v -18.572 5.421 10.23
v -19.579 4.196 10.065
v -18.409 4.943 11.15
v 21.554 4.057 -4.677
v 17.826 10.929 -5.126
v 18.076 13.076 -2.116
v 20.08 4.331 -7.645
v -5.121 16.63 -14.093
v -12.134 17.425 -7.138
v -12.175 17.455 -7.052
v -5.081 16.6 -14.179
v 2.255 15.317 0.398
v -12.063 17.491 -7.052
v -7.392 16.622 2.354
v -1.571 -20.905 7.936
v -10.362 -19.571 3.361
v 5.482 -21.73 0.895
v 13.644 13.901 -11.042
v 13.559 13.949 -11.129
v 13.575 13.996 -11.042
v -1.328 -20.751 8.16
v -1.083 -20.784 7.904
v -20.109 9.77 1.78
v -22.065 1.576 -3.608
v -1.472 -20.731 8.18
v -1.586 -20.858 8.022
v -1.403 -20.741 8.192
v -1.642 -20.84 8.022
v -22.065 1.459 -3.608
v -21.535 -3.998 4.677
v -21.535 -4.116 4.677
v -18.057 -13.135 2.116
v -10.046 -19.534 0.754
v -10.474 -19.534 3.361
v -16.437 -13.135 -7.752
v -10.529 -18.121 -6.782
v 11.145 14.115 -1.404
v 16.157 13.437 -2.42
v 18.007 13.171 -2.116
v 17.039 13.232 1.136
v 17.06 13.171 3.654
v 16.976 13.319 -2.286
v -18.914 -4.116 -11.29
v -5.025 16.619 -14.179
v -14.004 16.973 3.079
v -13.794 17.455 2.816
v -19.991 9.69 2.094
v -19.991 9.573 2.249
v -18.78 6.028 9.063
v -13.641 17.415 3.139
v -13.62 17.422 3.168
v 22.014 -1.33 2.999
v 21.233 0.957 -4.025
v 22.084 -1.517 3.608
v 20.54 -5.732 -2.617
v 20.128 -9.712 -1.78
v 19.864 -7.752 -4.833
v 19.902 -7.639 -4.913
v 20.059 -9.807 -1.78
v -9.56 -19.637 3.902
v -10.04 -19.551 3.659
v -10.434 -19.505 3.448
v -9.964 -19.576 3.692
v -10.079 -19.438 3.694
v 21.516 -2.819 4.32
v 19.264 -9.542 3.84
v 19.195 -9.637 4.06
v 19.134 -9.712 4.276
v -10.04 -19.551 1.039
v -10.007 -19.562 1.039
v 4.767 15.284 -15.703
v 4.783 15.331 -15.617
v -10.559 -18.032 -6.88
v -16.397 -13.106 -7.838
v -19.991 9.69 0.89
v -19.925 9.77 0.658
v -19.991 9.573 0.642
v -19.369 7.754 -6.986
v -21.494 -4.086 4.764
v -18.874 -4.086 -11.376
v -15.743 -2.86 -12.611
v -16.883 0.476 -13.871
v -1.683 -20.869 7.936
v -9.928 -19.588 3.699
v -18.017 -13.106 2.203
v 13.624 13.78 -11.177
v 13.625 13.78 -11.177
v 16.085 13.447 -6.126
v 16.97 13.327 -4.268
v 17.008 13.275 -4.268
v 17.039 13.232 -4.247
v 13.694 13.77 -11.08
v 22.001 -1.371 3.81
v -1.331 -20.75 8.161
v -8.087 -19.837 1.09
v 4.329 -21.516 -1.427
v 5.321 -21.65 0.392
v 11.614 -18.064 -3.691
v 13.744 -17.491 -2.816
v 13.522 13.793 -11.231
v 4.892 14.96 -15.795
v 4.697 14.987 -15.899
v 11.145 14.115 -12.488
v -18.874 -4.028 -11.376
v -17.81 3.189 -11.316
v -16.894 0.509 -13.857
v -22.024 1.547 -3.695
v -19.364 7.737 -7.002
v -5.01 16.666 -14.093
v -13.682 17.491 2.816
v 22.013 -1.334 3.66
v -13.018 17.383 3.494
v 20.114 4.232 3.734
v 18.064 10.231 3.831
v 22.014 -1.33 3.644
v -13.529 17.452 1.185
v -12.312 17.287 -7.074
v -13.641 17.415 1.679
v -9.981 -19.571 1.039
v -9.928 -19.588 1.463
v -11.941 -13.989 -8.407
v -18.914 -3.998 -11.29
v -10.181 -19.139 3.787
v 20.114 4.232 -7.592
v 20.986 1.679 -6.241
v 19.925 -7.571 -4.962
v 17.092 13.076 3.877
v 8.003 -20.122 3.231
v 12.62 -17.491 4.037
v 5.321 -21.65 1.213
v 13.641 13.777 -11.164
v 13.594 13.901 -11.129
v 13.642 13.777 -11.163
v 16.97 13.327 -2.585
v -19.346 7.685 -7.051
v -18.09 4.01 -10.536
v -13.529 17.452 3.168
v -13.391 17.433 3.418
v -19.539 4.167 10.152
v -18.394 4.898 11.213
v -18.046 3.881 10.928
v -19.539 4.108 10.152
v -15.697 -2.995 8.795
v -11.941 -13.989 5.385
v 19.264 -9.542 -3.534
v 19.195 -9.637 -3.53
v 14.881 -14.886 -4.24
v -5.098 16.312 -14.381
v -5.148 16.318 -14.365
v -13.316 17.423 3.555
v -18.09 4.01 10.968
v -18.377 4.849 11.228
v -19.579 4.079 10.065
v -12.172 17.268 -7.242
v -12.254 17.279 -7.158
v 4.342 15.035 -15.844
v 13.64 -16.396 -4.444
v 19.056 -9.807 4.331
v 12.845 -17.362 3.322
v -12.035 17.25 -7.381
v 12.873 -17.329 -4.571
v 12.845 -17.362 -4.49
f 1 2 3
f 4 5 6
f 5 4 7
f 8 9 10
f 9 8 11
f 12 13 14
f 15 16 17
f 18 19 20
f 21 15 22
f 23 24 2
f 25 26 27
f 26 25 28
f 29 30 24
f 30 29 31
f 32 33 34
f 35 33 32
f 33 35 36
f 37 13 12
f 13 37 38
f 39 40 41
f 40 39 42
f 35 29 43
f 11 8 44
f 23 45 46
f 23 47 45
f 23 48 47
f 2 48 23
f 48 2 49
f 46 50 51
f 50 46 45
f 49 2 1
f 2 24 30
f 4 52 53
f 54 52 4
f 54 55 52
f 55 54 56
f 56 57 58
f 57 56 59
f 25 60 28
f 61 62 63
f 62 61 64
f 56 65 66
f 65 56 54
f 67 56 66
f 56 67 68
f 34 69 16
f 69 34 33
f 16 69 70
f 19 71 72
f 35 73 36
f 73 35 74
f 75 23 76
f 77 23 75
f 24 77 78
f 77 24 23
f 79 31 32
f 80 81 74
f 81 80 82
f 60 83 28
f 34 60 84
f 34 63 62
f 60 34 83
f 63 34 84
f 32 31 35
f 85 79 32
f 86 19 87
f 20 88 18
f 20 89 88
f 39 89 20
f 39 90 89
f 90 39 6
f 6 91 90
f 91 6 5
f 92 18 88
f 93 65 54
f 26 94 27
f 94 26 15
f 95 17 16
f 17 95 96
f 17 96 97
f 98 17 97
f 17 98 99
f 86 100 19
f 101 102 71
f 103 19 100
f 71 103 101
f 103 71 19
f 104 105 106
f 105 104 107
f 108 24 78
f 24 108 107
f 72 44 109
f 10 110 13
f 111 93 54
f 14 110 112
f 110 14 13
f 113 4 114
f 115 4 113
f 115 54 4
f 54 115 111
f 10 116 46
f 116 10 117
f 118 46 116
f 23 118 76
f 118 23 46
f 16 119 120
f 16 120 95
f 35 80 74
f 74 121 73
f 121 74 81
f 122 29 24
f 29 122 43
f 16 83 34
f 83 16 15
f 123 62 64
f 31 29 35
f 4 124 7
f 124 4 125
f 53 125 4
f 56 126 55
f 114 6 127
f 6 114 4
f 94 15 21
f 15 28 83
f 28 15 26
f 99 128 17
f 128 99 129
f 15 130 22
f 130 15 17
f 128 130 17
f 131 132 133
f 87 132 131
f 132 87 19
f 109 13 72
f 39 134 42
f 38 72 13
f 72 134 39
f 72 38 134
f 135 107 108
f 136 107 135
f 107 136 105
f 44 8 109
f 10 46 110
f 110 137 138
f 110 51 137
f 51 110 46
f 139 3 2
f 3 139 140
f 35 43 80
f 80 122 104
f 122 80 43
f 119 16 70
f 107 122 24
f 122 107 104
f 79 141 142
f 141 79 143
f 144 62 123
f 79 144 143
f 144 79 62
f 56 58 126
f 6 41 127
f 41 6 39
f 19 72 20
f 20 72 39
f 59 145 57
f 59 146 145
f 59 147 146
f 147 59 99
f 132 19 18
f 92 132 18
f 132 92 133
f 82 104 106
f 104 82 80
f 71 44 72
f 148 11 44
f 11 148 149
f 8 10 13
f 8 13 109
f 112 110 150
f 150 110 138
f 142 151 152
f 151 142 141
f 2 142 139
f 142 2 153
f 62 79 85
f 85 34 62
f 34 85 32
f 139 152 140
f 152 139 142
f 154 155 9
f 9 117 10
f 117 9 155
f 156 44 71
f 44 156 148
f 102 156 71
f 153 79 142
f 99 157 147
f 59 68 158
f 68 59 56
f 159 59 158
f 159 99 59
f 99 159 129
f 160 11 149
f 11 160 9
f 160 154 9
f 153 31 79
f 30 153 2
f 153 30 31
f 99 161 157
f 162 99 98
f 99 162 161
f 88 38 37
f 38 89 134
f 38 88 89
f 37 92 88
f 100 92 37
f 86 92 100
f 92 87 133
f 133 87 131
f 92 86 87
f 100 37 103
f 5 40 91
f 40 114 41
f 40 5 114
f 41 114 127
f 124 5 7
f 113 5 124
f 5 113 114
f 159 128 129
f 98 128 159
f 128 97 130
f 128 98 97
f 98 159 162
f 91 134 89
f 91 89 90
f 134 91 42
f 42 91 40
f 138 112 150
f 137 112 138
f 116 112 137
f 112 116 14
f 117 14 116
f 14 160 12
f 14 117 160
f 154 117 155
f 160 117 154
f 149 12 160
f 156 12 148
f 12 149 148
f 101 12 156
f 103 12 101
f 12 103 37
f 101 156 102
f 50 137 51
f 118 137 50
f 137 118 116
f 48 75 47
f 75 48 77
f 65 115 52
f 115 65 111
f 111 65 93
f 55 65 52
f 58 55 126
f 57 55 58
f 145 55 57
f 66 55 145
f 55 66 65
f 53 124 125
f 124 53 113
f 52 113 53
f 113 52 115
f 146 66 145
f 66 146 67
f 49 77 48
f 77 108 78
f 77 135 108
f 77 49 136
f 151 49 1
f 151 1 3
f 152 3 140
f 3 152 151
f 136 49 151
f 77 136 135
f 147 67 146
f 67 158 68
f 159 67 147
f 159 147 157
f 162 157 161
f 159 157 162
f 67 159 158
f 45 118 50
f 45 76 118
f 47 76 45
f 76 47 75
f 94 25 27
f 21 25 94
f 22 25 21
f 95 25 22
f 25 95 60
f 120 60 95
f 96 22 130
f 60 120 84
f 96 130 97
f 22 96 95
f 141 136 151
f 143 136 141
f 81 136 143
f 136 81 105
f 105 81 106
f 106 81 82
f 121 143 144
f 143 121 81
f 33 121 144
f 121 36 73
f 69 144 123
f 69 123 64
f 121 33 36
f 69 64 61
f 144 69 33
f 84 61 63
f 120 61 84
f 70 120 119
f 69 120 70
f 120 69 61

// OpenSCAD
// Auto-generated OpenSCAD file

    inner_points = 10*[[0.03149424619031844, -0.6992864879444639, 2.118033988749915], [0.03149424617314351, -0.6992864879462605, -2.118033988749875], [-0.741026938557207, -0.06429749660974819, 2.1180339887527775], [-0.741026938574382, -0.06429749661154475, -2.1180339887470123], [0.6664832375250342, 0.07323469680306156, 2.1180339887470123], [0.6664832375078593, 0.073234696801265, -2.1180339887527775], [-0.10603794722249132, 0.7082236881377774, 2.118033988749875], [-0.10603794723966625, 0.7082236881359808, -2.118033988749915], [-0.9959395242778242, -1.9492520218959832, 0.5000000000047155], [-0.9959395242818789, -1.9492520218964078, -0.49999999999528455], [1.6939170079800567, 1.3232002307532087, 0.49999999999242173], [1.693917007976002, 1.3232002307527841, -0.5000000000075783], [1.2814597801305372, -1.726720258407157, -0.5000000000046125], [-1.9909924725146007, 0.9631362738511482, 0.5000000000075147], [-1.9909924725186547, 0.9631362738507241, -0.49999999999248534], [1.916448771465253, -0.9541990736596313, -0.5000000000075147], [-1.356003481179885, 1.7356574585986737, 0.5000000000046125], [-1.356003481183939, 1.7356574585982496, -0.49999999999538747], [0.9739715088171708, -0.8267427808031579, -1.809016994378695], [-1.0485152098665185, 0.8356799809946748, 1.809016994378695], [-1.0485152098811878, 0.8356799809931404, -1.8090169943712], [-1.1859777270848737, -1.3930353516266287, 1.3090169943801975], [-1.1859777270954883, -1.393035351627739, -1.3090169943696974], [1.1114340260461406, 1.4019725518192556, 1.3090169943696974], [1.111434026035526, 1.4019725518181454, -1.3090169943801975], [0.5290207203001192, -2.155480635818928, -1.3799625129733234e-12], [2.1914434820964175, -0.13299391712056935, -8.977904296875527e-12], [-0.24350046444084633, -1.5204916444835261, 1.6180339887513777], [-0.24350046445396684, -1.5204916444848984, -1.618033988748412], [-1.4934659983916794, -0.4930578740219434, 1.61803398875601], [-1.4934659984047998, -0.49305787402331586, -1.6180339887437798], [1.418922297355452, 0.5019950742148327, 1.6180339887437798], [1.4189222973423317, 0.5019950742134602, -1.61803398875601], [0.16895676340461901, 1.529428844676415, 1.618033988748412], [0.1689567633914985, 1.5294288446750428, -1.6180339887513777], [-0.05346226163379702, -2.0767083147528806, 0.8090169943758957], [-0.053462261640357105, -2.0767083147535668, -0.8090169943739992], [2.001405279289368, 0.4232227531487855, 0.8090169943665041], [2.001405279282808, 0.4232227531480994, -0.8090169943833908], [0.6989767981900609, -1.6479479373417958, -1.3090169943772316], [-1.8009542697009913, 0.4069196035824795, 1.3090169943819274], [-1.8009542697116054, 0.4069196035813693, -1.3090169943679675], [1.7264105686516436, -0.39798240339096275, -1.3090169943819274], [-0.7735204992394086, 1.6568851375333125, 1.3090169943772316], [-0.773520499250023, 1.6568851375322022, -1.3090169943726633]];

    outer_points = 10*[[-1.371336447205841, 1.7395979495788785, 0.28160841586432317], [1.840844013022788, -0.9711587981091819, 0.8088336578512769], [-2.0028099882397674, 0.9711587981091819, 0.17796268530774234], [1.2093704719888618, -1.7395979495788785, 0.705187927294696], [-1.2093704719888618, 1.7395979495788785, -0.705187927294696], [2.0028099882397674, -0.9711587981091819, -0.17796268530774234], [-1.840844013022788, 0.9711587981091819, -0.8088336578512769], [1.371336447205841, -1.7395979495788785, -0.28160841586432317], [-0.4064591423188801, 0.7041810071951622, 2.079660561781849], [0.35183380229163597, 0.06425814427453419, 2.2041215583445464], [0.27963973874229003, 0.7041810071951622, -2.1004758277879656], [1.037932683352806, 0.06425814427453419, -1.9760148312252683], [1.6356459076028755, 1.3076188096386316, 0.77515384996851], [-1.7976118828198546, -1.3076188096386316, 0.21164249319050915], [-1.0393189382093386, -1.9475416725592598, 0.33610348975320653], [1.7976118828198546, 1.3076188096386316, -0.21164249319050915], [-1.6356459076028755, -1.3076188096386316, -0.77515384996851], [-0.8773529629923593, -1.9475416725592598, -0.6506928534058127], [2.1983744202265796, -0.15173142569558906, 0.36082608061173255], [-2.1983744202265796, 0.15173142569558906, -0.36082608061173255], [0.5451552268035095, -2.163531242529383, 0.08947803522579041], [-1.285617552887813, 0.837669902652172, 1.6222097951243055], [0.6996191495317593, -0.837669902652172, 1.948052914399131], [-0.6996191495317593, 0.837669902652172, -1.948052914399131], [1.285617552887813, -0.837669902652172, -1.6222097951243055], [0.9303301531589606, 1.3901194841517452, 1.47923007115347], [1.3543625812980353, 1.3901194841517452, -1.104236295210947], [-0.9280871456840218, 1.6570972750657649, 1.174202217884761], [1.525800369934091, -0.41373660970166726, 1.5769664633090175], [-1.9498327980731658, 0.41373660970166726, 1.0064999030553996], [0.5040547175449472, -1.6570972750657649, 1.409264148479656], [-0.5040547175449472, 1.6570972750657649, -1.409264148479656], [1.9498327980731658, -0.41373660970166726, -1.0064999030553996], [-1.525800369934091, 0.41373660970166726, -1.5769664633090175], [0.9280871456840218, -1.6570972750657649, -1.174202217884761], [-0.04892873511508877, 1.523608379608755, 1.631652984542305], [1.1780150226939676, 0.4881914372250389, 1.833035107254433], [0.47520417072910215, 1.523608379608755, -1.5616870618684908], [1.7021479285381587, 0.4881914372250389, -1.3603049391563626], [1.8833307771378829, 0.4056907627119256, 1.128958886069473], [-2.145397230059978, -0.4056907627119256, 0.46771113713592477], [-0.16016052764040542, -2.0810305680162697, 0.7935542564107504], [2.145397230059978, 0.4056907627119256, -0.46771113713592477], [-1.8833307771378829, -0.4056907627119256, -1.128958886069473], [0.10190592528169004, -2.0810305680162697, -0.8031157667946475]];

    // Convex hull for inner set (I)
    module inner_hull() {
        hull() {
            for (p = inner_points) {
                translate(p) sphere(r=0.1);
            }
        }
    }

    // Convex hull for outer set (O) minus inner hull (O \ I)
    module outer_minus_inner() {
        difference() {
            hull() {
                for (p = outer_points) {
                    translate(p) sphere(r=0.1);
                }
            }
            inner_hull(); // Subtract inner hull
        }
    }

    // Convex hull for outer set (O) minus all translated inner hulls
    module outer_minus_AllTranslationInner() {
        difference() {
            hull() {
                for (p = outer_points) {
                    translate(p) sphere(r=0.1);
                }
            }
            hull() {
                translate([0,0,50]) inner_hull();
                translate([0,0,-50]) inner_hull();
            }; // Subtract translated inner hulls
        }
    }

    // Difference between outer_minus_inner and outer_minus_AllTranslationInner
    module outer_minus_inner_diff() {
        difference() {
            // Outer minus inner
            difference() {
                hull() {
                    for (p = outer_points) {
                        translate(p) sphere(r=0.1);
                    }
                }
                inner_hull();
            }

            // Subtract Outer minus AllTranslationInner
            difference() {
                hull() {
                    for (p = outer_points) {
                        translate(p) sphere(r=0.1);
                    }
                }
                hull() {
                    translate([0,0,50]) inner_hull();
                    translate([0,0,-50]) inner_hull();
                };
            }
        }
    }

    // Rendering all with colors applied
    color([0, 1, 0, 1]) outer_minus_AllTranslationInner(); // Opaque green
    
